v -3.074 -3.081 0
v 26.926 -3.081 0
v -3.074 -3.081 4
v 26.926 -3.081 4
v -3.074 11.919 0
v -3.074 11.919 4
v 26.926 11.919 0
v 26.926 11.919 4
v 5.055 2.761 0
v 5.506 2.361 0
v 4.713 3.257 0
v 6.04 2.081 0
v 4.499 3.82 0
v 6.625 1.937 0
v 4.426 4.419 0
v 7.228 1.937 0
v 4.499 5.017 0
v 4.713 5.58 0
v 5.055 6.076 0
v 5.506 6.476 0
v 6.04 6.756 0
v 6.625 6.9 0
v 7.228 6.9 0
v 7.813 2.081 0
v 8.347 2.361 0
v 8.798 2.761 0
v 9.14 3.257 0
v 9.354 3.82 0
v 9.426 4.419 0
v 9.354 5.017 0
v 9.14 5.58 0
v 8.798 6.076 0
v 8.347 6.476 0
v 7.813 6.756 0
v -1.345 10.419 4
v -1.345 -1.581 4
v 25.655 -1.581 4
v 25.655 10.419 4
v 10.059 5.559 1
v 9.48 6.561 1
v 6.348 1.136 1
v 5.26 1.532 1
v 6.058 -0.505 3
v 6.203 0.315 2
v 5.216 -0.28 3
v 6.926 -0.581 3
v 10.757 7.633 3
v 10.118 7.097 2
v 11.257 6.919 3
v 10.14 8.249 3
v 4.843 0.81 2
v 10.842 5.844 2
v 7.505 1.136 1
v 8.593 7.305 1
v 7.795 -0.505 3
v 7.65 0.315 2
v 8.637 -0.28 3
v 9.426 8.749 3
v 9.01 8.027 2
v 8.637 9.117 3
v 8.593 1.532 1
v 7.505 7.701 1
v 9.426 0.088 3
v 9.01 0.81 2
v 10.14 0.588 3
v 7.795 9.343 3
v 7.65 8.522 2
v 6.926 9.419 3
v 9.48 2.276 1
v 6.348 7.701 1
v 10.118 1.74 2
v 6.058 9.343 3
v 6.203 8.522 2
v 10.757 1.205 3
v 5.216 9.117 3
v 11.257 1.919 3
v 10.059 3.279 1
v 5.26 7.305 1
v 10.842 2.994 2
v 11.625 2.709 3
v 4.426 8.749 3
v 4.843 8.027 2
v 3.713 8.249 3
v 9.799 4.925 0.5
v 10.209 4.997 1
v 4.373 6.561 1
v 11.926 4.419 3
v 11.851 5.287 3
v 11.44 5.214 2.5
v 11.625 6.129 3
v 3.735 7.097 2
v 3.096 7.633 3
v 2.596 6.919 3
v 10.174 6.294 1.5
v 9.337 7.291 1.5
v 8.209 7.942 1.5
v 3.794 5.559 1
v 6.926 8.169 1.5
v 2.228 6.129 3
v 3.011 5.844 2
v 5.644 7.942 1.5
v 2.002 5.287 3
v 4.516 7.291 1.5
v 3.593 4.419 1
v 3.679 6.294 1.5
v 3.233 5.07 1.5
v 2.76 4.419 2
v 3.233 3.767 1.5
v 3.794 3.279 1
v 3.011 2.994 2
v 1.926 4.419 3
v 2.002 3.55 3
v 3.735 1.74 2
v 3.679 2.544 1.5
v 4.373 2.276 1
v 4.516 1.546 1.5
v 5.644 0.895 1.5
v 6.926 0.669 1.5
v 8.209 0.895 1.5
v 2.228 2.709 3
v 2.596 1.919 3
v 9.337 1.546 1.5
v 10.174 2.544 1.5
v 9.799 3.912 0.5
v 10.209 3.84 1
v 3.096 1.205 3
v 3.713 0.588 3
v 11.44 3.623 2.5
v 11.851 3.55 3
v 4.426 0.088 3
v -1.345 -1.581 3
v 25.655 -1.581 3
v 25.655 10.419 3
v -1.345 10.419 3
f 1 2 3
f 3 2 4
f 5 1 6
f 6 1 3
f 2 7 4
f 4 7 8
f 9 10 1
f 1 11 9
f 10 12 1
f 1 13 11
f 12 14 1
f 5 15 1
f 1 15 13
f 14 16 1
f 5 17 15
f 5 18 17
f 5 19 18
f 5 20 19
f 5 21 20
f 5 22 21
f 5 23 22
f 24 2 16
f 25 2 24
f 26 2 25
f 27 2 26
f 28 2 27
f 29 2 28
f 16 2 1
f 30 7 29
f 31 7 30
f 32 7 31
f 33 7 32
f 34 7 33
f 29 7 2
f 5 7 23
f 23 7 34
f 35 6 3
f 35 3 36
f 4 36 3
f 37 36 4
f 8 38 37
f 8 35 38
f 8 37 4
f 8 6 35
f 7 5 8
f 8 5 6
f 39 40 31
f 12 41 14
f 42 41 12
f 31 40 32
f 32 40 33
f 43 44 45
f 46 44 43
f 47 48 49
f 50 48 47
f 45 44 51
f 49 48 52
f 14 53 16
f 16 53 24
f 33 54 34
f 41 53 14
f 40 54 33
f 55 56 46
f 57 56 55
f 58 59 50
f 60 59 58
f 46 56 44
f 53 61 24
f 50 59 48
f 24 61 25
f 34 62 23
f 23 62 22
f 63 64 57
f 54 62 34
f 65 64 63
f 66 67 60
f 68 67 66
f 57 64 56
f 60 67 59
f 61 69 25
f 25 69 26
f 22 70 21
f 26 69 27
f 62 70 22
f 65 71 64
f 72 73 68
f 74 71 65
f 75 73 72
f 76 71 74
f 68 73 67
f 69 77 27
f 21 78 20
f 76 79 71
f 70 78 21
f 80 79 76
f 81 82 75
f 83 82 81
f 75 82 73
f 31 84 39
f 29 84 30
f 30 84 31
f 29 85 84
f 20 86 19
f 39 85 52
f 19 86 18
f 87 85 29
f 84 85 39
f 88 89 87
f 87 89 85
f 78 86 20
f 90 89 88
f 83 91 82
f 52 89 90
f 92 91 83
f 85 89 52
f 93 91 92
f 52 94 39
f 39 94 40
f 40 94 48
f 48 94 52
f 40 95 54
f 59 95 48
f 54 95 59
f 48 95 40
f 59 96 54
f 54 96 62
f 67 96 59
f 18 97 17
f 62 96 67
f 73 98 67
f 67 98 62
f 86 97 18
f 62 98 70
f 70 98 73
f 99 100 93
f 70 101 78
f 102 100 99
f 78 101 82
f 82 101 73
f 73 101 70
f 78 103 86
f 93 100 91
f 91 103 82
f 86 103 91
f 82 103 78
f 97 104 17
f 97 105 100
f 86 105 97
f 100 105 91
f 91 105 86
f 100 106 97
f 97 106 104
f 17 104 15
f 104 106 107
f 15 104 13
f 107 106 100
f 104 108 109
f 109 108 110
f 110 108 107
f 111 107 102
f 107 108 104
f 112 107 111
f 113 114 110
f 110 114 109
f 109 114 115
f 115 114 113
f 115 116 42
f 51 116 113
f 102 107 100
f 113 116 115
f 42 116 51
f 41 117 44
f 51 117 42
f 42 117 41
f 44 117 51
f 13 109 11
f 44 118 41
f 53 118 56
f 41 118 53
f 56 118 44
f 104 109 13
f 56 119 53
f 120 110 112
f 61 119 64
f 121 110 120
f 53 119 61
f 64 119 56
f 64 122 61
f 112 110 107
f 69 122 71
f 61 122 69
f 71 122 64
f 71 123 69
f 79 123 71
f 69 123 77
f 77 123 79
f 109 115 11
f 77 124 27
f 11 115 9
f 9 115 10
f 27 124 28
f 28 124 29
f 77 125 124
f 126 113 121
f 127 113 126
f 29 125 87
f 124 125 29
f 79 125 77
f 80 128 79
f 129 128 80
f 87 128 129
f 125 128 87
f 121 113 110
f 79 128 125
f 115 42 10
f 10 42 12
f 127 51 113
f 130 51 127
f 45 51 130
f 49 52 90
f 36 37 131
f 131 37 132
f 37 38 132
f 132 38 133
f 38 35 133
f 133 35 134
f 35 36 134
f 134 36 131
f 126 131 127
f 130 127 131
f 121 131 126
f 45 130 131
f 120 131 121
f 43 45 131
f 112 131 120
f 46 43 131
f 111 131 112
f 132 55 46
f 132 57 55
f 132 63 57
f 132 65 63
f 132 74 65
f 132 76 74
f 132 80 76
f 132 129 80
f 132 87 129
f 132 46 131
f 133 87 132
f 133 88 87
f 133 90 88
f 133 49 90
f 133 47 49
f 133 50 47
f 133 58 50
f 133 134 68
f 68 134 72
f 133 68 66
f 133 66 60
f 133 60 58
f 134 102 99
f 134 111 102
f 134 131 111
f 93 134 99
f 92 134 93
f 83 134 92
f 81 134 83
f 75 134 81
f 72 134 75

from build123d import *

# Parameters (mm, degrees)
RECTANGLE001_W   = 27
RECTANGLE001_H   = 12
EXTRUDE002_DEPTH = 1
CIRCLE_R         = 2.5
EXTRUDE001_DEPTH = 10
RECTANGLE_W      = 30
RECTANGLE_H      = 15
EXTRUDE_DEPTH    = 4


with BuildPart() as extrude002:
    # Rectangle001 → Extrude002 (new body)
    with BuildSketch(Plane(origin=(-1.345388, -1.581388, 4), x_dir=(1, 0, 0), z_dir=(0, 0, 1))):
        with Locations((13.5, 6)):
            Rectangle(RECTANGLE001_W, RECTANGLE001_H)
    extrude(amount=-EXTRUDE002_DEPTH)


with BuildPart() as cone:
    # Cone → Cone (revolve)
    with BuildSketch(Plane(origin=(6.926492, 4.418612, 0), x_dir=(1, 0, 0), z_dir=(0, -1, 0))):
        Polygon((0, 0), (2.5, 0), (5, 3), (0, 3), align=None)
    revolve(axis=Axis((6.926492, 4.418612, 0), (0, 0, 1)))


with BuildPart() as extrude001:
    # Circle → Extrude001 (new body)
    with BuildSketch(Plane(origin=(6.926492, 4.418612, 0), x_dir=(1, 0, 0), z_dir=(0, 0, 1))):
        Circle(CIRCLE_R)
    extrude(amount=EXTRUDE001_DEPTH)


with BuildPart() as cut002:
    # Rectangle → Extrude (new body)
    with BuildSketch(Plane(origin=(-3.073508, -3.081388, 0), x_dir=(1, 0, 0), z_dir=(0, 0, 1))):
        with Locations((15, 7.5)):
            Rectangle(RECTANGLE_W, RECTANGLE_H)
    extrude(amount=EXTRUDE_DEPTH)

    # Cut: cut Extrude001
    add(extrude001.part, mode=Mode.SUBTRACT)

    # Cut001: cut Cone
    add(cone.part, mode=Mode.SUBTRACT)

    # Cut002: cut Extrude002
    add(extrude002.part, mode=Mode.SUBTRACT)


solid = cut002.part
